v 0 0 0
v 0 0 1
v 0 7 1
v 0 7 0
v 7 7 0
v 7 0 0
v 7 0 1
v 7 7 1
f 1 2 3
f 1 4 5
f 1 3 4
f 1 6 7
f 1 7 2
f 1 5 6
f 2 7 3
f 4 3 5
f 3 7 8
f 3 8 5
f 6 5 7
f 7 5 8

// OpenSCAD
/* Warning, this is a very basic generator with a lot of approximation 
input data : [VQFN, MBC, 7x7x1mm, 53, , A, C04-25408A]
generated by com.zoubworld.electronics.cad.model3d.Basic
Date : Sun Feb 15 10:50:49 CET 2026
*/

//body
color("black")
translate([0,0,0])
cube([7.0,7.0,1.0], center=false);
